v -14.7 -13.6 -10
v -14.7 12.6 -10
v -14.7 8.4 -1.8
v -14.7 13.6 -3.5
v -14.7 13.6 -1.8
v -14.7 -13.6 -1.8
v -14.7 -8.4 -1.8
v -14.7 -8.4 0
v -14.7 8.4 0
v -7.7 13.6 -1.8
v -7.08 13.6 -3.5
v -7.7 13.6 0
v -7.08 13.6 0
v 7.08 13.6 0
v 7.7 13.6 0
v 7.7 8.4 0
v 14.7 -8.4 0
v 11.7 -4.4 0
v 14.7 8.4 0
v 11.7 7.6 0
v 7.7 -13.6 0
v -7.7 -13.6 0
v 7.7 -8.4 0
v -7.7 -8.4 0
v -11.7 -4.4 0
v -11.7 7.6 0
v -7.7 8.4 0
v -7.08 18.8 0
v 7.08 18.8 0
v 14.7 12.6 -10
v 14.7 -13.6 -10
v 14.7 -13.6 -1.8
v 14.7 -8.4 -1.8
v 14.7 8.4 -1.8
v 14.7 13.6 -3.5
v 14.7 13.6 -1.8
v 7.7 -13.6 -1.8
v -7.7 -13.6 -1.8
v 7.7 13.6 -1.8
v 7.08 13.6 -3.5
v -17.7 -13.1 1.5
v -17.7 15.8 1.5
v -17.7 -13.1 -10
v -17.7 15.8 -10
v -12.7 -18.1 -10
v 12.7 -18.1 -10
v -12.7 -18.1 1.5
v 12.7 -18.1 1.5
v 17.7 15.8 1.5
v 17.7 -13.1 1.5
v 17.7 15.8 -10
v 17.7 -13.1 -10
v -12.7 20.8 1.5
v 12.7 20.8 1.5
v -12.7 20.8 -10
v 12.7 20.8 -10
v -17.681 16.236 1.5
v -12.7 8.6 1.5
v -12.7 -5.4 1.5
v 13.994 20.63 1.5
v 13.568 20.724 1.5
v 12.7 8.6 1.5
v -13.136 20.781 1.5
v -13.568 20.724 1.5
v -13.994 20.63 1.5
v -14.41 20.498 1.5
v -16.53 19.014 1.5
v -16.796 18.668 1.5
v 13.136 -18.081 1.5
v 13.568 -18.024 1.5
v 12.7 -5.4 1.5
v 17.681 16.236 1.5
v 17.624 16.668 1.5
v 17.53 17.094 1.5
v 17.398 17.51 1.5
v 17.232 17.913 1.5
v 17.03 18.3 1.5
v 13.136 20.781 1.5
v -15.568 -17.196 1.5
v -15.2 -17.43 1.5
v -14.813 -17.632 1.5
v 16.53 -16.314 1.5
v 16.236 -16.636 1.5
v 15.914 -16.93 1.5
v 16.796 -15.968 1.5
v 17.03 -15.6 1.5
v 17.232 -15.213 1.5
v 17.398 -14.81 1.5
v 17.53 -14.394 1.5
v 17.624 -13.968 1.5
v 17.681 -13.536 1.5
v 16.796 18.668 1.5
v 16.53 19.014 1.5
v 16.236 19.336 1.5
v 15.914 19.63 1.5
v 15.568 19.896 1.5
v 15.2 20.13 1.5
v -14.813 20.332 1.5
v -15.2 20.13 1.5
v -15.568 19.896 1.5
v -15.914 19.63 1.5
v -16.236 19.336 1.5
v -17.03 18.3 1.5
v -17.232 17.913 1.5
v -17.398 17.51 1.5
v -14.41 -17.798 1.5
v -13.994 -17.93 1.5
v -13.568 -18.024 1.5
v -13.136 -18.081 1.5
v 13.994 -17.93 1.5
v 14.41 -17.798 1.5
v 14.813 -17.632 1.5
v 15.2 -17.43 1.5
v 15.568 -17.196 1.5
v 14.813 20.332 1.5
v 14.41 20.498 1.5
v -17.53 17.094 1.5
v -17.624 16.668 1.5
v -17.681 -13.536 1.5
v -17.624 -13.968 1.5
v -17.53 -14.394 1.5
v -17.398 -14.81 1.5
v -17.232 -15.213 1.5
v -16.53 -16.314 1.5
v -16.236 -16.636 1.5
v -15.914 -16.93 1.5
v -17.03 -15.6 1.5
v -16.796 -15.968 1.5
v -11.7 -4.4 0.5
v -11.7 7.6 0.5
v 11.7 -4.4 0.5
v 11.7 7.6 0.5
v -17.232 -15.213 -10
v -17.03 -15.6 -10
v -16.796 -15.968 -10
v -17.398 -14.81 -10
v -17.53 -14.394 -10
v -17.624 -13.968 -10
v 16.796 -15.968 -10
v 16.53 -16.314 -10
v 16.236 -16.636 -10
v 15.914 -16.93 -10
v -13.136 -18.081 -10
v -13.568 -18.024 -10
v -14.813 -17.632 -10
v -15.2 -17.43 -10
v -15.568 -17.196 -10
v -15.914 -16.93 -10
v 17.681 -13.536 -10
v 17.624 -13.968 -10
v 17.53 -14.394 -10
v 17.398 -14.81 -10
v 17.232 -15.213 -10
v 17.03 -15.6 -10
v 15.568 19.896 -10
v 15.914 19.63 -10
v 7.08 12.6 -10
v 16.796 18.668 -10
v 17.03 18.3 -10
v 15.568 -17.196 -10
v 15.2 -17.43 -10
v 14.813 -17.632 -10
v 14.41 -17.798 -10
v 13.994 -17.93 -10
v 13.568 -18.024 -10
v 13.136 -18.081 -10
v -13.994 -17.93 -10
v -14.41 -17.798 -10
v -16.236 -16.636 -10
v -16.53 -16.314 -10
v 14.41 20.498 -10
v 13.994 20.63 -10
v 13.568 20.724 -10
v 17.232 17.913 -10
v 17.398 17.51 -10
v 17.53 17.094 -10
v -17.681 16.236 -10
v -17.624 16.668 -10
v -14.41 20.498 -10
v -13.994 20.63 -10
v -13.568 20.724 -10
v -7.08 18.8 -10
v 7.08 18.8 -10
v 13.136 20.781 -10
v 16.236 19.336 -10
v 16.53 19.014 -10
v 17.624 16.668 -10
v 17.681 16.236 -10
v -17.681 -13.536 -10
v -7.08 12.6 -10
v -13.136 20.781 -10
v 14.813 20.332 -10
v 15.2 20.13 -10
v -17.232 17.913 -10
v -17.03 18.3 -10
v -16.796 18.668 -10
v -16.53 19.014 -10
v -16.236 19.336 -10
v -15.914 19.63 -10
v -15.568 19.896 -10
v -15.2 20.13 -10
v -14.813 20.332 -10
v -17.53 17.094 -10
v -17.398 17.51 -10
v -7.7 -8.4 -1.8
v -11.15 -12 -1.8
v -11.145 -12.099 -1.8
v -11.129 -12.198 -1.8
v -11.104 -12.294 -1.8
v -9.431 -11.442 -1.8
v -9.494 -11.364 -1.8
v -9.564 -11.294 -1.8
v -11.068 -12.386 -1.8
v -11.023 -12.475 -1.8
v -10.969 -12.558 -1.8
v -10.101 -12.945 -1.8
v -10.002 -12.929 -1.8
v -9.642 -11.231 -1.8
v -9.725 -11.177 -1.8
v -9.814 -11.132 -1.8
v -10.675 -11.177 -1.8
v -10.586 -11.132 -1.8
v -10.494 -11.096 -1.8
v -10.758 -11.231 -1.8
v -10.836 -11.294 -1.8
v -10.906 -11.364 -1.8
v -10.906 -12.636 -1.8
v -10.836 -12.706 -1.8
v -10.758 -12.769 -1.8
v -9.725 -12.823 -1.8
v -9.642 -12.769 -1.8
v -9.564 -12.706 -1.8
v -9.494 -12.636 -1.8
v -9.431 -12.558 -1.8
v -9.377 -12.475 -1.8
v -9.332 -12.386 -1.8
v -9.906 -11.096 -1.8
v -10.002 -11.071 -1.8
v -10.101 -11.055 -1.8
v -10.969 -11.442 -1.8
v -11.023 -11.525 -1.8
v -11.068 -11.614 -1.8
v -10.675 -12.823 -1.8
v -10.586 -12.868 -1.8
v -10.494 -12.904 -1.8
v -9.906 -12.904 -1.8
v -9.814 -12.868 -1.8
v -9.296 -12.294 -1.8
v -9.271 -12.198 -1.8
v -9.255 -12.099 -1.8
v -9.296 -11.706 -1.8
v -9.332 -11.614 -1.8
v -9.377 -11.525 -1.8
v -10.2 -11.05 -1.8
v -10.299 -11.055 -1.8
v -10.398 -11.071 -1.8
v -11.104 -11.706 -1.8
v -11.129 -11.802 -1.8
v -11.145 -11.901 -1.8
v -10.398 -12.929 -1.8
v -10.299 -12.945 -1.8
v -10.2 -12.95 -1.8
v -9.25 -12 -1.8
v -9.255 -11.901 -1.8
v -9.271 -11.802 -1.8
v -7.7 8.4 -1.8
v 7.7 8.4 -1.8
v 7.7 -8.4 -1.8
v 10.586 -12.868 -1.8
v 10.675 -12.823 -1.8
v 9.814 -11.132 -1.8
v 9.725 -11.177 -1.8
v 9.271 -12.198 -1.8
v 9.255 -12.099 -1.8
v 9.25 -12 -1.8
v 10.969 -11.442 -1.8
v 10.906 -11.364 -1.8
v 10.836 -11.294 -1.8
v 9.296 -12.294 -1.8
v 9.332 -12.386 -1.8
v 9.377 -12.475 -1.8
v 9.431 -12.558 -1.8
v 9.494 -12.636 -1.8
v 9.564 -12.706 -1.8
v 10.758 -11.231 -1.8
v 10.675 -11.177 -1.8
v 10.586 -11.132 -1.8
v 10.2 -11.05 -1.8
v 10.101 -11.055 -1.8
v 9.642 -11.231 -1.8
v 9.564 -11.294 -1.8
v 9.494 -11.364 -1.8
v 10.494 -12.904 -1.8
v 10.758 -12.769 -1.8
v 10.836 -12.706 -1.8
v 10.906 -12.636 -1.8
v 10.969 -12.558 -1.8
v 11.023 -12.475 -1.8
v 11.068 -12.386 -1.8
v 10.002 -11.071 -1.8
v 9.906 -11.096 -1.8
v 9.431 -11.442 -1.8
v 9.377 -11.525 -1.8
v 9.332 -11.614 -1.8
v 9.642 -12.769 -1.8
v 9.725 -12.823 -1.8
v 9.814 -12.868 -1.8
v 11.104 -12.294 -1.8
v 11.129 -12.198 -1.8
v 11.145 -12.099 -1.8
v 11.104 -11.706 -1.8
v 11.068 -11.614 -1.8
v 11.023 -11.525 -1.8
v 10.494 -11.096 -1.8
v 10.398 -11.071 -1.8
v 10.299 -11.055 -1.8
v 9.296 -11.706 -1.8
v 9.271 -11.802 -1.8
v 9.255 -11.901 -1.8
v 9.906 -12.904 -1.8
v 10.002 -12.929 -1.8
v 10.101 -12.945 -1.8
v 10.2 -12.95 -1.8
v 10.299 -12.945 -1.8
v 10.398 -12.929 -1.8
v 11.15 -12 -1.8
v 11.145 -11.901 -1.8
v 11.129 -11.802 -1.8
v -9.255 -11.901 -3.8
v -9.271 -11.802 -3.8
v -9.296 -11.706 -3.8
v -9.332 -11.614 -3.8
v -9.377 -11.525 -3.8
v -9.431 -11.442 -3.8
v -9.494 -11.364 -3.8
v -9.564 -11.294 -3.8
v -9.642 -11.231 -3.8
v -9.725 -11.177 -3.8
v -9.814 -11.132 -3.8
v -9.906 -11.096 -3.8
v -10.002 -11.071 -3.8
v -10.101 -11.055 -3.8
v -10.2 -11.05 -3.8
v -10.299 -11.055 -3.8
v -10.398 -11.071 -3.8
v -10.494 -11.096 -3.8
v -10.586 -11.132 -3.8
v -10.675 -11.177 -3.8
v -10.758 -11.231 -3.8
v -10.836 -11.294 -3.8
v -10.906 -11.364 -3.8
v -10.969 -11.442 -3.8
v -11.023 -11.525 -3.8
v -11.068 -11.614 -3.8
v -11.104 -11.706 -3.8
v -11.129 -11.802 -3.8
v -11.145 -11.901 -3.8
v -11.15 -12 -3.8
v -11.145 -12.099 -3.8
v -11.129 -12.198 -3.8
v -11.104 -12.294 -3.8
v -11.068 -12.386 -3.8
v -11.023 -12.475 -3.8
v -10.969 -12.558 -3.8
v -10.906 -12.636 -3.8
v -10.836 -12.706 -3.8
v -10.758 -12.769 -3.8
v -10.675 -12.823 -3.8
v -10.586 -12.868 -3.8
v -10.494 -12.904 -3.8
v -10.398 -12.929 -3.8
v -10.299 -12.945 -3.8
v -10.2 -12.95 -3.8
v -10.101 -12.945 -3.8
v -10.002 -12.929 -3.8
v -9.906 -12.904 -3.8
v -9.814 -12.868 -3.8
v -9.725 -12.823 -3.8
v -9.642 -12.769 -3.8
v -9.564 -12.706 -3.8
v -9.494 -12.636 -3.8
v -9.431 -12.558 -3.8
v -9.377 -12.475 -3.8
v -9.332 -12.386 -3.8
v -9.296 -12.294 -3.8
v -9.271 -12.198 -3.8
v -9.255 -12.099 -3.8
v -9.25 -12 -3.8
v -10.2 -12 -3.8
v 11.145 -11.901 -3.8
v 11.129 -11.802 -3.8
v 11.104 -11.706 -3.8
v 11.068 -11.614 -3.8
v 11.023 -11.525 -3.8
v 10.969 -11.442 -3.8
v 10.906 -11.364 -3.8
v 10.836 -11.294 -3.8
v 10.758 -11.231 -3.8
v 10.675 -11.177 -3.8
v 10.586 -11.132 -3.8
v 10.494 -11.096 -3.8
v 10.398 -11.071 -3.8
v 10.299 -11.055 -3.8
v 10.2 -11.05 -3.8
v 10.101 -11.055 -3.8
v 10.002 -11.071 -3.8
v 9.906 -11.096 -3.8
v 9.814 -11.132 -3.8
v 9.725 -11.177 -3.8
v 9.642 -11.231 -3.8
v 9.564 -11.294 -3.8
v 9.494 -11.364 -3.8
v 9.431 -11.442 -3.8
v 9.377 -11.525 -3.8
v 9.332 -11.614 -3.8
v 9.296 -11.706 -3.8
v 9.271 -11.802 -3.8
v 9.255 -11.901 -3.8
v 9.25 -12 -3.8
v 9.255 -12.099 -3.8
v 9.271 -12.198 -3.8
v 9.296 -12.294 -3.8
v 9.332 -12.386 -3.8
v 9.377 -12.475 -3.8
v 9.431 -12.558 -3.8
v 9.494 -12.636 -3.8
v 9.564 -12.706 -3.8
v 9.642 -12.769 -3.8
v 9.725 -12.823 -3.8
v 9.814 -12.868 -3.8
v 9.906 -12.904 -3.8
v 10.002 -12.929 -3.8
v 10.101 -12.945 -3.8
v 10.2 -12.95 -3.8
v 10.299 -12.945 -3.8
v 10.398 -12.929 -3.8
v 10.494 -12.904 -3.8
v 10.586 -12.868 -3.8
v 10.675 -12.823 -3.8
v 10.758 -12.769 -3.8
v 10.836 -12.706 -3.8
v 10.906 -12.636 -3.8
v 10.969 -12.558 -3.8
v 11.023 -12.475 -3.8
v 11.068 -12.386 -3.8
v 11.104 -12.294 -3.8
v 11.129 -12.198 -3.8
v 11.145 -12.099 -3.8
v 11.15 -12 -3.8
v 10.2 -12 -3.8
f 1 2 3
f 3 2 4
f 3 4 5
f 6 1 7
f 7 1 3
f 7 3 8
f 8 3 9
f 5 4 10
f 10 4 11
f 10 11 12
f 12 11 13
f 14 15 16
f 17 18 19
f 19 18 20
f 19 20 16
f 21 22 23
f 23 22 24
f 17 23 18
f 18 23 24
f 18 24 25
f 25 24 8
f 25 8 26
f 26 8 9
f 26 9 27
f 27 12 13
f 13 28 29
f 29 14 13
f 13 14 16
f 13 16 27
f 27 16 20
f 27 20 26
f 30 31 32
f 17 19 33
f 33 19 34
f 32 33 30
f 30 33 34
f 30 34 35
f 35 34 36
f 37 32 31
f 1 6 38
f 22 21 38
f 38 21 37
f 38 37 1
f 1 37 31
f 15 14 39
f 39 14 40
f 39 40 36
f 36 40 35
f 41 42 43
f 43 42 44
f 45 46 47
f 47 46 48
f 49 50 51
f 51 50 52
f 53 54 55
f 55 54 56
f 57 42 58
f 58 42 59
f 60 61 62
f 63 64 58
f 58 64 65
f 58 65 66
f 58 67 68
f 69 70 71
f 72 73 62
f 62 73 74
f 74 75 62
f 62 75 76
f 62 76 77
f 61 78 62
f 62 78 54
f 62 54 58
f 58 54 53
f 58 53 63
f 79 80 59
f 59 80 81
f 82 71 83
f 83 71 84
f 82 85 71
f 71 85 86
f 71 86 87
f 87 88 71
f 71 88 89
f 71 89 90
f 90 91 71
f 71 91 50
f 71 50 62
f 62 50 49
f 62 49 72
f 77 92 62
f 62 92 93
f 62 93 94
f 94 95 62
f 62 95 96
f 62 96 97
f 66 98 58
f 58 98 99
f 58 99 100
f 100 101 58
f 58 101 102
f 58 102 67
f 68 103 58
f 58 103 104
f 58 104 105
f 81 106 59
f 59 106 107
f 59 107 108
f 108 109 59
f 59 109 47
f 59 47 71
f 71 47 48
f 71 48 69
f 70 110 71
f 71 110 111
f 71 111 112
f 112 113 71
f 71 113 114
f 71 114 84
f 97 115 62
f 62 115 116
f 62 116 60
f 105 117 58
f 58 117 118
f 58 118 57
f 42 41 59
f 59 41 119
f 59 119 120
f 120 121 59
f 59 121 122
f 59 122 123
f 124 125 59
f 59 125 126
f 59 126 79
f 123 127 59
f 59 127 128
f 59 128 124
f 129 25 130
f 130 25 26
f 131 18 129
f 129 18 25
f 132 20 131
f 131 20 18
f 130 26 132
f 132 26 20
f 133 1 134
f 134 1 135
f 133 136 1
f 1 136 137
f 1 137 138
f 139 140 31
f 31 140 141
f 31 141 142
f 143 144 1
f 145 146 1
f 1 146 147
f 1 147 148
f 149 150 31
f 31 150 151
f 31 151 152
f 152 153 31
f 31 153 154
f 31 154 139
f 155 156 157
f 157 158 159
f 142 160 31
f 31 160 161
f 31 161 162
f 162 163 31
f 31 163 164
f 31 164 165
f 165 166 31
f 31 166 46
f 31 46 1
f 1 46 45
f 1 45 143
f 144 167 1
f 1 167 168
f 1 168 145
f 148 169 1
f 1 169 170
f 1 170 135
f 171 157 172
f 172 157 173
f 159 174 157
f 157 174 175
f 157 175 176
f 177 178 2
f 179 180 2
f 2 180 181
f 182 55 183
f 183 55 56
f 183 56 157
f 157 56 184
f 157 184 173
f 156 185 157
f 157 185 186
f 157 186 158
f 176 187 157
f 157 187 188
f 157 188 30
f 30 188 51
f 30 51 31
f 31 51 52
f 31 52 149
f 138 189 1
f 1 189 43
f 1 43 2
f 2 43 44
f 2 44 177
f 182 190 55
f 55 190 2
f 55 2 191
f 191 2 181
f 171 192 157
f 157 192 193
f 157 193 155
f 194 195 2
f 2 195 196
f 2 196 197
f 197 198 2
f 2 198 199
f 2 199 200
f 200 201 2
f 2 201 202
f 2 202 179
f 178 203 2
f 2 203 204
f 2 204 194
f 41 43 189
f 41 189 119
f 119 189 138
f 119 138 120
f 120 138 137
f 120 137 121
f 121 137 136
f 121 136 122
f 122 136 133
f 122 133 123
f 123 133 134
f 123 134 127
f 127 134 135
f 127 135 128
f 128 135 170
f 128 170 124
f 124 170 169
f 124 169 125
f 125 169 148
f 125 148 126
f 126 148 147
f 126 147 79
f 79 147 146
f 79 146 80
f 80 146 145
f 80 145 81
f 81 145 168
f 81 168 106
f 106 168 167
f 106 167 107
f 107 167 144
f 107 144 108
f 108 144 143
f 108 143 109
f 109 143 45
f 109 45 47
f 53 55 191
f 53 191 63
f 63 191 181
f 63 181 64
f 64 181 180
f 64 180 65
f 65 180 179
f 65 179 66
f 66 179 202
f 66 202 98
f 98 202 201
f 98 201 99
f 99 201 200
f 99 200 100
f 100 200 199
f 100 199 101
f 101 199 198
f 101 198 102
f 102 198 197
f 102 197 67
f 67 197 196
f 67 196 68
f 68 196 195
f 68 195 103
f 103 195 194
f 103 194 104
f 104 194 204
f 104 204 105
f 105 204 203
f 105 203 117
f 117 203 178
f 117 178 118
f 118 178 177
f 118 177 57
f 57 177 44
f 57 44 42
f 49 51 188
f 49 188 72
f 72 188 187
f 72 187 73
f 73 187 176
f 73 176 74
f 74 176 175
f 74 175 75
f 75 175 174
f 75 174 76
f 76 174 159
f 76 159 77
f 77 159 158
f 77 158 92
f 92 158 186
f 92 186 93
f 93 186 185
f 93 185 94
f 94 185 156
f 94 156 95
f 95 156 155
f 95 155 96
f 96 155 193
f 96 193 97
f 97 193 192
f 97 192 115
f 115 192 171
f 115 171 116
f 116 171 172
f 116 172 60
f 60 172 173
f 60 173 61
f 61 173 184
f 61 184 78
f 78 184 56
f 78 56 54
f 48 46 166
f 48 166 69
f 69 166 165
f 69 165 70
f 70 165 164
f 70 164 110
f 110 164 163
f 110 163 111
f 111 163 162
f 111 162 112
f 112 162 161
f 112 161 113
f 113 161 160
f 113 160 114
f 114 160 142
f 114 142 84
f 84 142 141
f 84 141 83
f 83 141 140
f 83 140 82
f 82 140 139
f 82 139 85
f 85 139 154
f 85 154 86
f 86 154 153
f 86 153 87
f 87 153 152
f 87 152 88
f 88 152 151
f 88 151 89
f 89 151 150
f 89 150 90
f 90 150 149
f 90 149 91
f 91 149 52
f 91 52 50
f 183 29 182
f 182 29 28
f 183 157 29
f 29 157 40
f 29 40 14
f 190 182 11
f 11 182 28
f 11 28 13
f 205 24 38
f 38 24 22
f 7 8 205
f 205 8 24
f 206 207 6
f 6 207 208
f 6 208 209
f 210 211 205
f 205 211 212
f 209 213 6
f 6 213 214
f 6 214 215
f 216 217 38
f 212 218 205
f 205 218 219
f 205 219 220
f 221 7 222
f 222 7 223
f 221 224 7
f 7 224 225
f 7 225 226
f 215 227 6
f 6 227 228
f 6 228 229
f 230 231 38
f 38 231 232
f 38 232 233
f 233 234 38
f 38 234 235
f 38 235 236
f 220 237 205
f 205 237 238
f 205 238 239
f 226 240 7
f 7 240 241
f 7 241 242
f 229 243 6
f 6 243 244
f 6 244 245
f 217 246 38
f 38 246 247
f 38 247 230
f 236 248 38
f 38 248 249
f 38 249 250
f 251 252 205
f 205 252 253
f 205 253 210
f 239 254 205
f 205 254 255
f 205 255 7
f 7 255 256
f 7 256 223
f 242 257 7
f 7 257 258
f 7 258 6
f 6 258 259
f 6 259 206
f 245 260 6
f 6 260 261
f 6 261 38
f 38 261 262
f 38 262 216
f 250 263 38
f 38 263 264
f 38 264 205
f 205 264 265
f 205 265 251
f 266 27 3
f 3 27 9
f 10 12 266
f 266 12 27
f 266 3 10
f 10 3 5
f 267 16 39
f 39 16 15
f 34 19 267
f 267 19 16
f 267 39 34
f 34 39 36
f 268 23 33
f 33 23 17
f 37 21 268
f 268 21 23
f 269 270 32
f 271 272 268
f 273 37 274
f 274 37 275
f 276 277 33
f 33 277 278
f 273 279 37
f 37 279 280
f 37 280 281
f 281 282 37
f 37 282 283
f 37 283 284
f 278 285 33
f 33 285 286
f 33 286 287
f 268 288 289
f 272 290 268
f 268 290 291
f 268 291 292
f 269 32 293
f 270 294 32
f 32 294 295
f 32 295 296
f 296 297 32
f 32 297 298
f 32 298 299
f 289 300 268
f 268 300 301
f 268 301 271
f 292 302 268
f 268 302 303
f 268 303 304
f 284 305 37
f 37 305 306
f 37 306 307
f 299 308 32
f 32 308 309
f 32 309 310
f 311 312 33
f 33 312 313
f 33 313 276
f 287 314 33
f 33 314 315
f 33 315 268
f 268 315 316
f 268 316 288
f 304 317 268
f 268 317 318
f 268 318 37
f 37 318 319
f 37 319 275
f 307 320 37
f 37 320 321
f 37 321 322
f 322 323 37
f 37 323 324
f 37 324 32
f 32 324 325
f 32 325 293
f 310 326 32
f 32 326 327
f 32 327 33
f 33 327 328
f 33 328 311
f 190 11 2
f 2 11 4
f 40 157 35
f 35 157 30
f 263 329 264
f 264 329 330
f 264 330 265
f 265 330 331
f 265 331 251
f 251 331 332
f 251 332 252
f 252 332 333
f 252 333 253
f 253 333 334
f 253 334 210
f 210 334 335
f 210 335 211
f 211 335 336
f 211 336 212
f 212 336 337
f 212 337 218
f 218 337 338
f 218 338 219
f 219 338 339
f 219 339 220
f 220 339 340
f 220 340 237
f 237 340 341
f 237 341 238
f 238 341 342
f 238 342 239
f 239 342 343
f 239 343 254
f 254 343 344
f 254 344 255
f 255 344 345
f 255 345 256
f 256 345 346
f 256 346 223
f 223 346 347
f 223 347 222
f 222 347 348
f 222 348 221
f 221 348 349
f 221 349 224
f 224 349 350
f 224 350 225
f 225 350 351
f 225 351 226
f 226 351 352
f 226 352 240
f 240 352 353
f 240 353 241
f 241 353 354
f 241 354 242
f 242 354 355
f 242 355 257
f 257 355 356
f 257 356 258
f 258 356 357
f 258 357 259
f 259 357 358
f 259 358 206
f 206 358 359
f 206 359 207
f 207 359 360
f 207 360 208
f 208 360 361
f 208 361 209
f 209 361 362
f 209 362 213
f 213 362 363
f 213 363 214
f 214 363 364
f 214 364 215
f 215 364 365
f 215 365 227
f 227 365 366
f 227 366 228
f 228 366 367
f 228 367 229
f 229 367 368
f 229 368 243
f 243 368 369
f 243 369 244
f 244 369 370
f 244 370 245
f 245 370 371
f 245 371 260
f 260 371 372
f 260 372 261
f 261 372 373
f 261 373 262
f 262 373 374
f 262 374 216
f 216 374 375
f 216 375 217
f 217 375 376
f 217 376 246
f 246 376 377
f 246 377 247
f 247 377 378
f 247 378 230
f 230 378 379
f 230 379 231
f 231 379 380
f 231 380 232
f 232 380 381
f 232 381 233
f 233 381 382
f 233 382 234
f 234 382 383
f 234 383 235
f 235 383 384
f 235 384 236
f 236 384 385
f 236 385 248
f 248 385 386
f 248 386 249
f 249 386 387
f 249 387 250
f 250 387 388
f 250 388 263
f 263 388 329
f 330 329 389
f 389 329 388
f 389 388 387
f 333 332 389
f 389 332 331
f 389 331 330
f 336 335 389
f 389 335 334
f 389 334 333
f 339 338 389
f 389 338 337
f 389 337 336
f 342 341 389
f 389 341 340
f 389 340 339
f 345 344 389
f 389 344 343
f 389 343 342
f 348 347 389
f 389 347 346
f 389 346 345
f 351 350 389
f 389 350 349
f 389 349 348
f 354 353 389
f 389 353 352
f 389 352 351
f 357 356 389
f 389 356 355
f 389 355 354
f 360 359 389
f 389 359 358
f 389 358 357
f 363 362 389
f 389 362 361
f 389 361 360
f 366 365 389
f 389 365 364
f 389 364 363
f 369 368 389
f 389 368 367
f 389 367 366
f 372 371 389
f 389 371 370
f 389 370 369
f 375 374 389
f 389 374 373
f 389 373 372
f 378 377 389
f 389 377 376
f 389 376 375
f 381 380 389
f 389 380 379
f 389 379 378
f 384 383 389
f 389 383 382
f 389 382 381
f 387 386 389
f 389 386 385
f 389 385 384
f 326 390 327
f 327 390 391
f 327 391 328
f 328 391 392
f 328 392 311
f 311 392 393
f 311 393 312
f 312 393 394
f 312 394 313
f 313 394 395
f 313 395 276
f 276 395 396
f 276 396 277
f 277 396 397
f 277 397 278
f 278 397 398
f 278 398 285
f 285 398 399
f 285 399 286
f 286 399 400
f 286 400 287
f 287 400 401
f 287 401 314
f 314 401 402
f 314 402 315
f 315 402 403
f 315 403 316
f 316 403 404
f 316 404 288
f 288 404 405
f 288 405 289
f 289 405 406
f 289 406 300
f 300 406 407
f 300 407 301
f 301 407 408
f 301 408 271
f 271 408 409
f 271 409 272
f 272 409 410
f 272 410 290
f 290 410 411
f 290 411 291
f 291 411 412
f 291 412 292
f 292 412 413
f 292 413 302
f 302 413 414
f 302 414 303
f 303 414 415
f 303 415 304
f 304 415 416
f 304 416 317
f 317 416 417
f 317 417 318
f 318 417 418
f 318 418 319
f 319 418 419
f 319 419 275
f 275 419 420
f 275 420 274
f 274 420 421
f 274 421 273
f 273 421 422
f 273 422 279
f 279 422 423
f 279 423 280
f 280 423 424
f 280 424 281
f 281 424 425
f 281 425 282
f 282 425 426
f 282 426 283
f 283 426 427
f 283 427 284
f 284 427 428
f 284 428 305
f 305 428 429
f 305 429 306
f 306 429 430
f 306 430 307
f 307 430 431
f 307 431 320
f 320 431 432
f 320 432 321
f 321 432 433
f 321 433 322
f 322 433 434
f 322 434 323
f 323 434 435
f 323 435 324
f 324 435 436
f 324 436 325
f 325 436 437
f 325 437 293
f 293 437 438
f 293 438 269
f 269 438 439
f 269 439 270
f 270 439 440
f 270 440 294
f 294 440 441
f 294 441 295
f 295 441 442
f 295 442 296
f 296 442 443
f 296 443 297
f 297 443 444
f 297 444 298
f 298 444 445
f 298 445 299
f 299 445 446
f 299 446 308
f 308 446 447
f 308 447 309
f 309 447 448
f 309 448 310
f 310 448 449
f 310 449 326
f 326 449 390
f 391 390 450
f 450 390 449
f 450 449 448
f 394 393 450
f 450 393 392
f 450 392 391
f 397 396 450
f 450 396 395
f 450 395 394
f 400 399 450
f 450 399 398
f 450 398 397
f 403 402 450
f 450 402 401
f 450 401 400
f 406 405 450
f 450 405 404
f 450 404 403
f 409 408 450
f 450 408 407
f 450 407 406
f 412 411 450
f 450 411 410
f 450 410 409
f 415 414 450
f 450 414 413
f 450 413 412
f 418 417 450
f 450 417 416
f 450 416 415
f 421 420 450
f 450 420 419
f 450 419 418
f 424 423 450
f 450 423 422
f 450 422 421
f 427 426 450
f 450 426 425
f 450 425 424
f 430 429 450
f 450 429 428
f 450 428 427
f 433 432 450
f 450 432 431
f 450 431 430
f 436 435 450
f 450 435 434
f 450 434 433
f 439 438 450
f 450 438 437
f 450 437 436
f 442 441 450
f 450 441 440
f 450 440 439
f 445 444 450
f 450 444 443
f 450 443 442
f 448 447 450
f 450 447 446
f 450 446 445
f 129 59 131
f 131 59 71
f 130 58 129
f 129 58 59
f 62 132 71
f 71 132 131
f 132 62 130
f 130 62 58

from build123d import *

# Parameters (mm, degrees)
SKETCH2_W           = 35.4
SKETCH2_H           = 38.9
BOSS_EXTRUDE1_DEPTH = 1.5
SKETCH4_W           = 23.4
SKETCH4_H           = 12
CUT_EXTRUDE1_DEPTH  = 1.5
SKETCH5_W           = 35.4
SKETCH5_H           = 38.9
SKETCH5_W_2         = 29.4
SKETCH5_H_2         = 27.2
BOSS_EXTRUDE2_DEPTH = 10
FILLET1_R           = 5
SKETCH7_W           = 14.16
SKETCH7_H           = 5.2
CUT_EXTRUDE2_DEPTH  = 10
SKETCH8_W           = 7
SKETCH8_H           = 5.2
BOSS_EXTRUDE3_DEPTH = 1.8
BOSS_EXTRUDE4_DEPTH = 7.62
SKETCH10_R          = 0.95
BOSS_EXTRUDE5_DEPTH = 2
CHAMFER1_SIZE       = 1


with BuildPart() as part:
    # Sketch2 → Boss-Extrude1 (new body)
    with BuildSketch(Plane.XY):
        with Locations((0, 1.35)):
            Rectangle(SKETCH2_W, SKETCH2_H)
    extrude(amount=BOSS_EXTRUDE1_DEPTH)

    # Sketch4 → Cut-Extrude1 (cut)
    with BuildSketch(Plane(origin=(0, 0, 0), x_dir=(-1, 0, 0), z_dir=(0, 0, -1))):
        with Locations((0, 1.6)):
            Rectangle(SKETCH4_W, SKETCH4_H)
    extrude(amount=-CUT_EXTRUDE1_DEPTH, mode=Mode.SUBTRACT)

    # Sketch5 → Boss-Extrude2 (add)
    with BuildSketch(Plane(origin=(0, 0, 0), x_dir=(-1, 0, 0), z_dir=(0, 0, -1))):
        with Locations((0, 1.35)):
            Rectangle(SKETCH5_W, SKETCH5_H)
        Rectangle(SKETCH5_W_2, SKETCH5_H_2, mode=Mode.SUBTRACT)
    extrude(amount=BOSS_EXTRUDE2_DEPTH)

    # Fillet1
    fillet1_edges = [part.edges().sort_by_distance(p)[0] for p in [
        (-17.7, 20.8, -4.25),
        (17.7, 20.8, -4.25),
        (17.7, -18.1, -4.25),
        (-17.7, -18.1, -4.25),
    ]]
    fillet(fillet1_edges, radius=FILLET1_R)

    # Sketch7 → Cut-Extrude2 (cut)
    with BuildSketch(Plane(origin=(0, 0, -10), x_dir=(-1, 0, 0), z_dir=(0, 0, -1))):
        with Locations((0, 16.2)):
            Rectangle(SKETCH7_W, SKETCH7_H)
    extrude(amount=-CUT_EXTRUDE2_DEPTH, mode=Mode.SUBTRACT)

    # Sketch8 → Boss-Extrude3 (add)
    with BuildSketch(Plane(origin=(0, 0, 0), x_dir=(-1, 0, 0), z_dir=(0, 0, -1))):
        with Locations((11.2, -11)):
            Rectangle(SKETCH8_W, SKETCH8_H)
        with Locations((11.2, 11)):
            Rectangle(SKETCH8_W, SKETCH8_H)
        with Locations((-11.2, 11)):
            Rectangle(SKETCH8_W, SKETCH8_H)
        with Locations((-11.2, -11)):
            Rectangle(SKETCH8_W, SKETCH8_H)
    extrude(amount=BOSS_EXTRUDE3_DEPTH)

    # Sketch9 → Boss-Extrude4 (add)
    with BuildSketch(Plane(origin=(-14.7, 0, 0), x_dir=(0, 0, -1), z_dir=(1, 0, 0))):
        Polygon((3.5, 13.6), (10, 12.6), (10, 13.6), align=None)
    boss_extrude4 = extrude(amount=BOSS_EXTRUDE4_DEPTH)

    # Mirror1: Boss-Extrude4 across plane
    add(boss_extrude4.mirror(Plane(origin=(0, 0, 0), x_dir=(0, 0, 1), z_dir=(1, 0, 0))))

    # Sketch10 → Boss-Extrude5 (add)
    with BuildSketch(Plane(origin=(0, 0, -1.8), x_dir=(-1, 0, 0), z_dir=(0, 0, -1))):
        with Locations(Location((10.2, -12, 0), (0, 0, 180))):
            Circle(SKETCH10_R)
    boss_extrude5 = extrude(amount=BOSS_EXTRUDE5_DEPTH)

    # Mirror2: Boss-Extrude5 across plane
    add(boss_extrude5.mirror(Plane(origin=(0, 0, 0), x_dir=(0, 0, 1), z_dir=(1, 0, 0))))

    # Chamfer1
    chamfer1_edges = [part.edges().sort_by_distance(p)[0] for p in [
        (-11.7, 1.6, 1.5),
        (0, -4.4, 1.5),
        (11.7, 1.6, 1.5),
        (0, 7.6, 1.5),
    ]]
    chamfer(chamfer1_edges, length=CHAMFER1_SIZE)


solid = part.part
